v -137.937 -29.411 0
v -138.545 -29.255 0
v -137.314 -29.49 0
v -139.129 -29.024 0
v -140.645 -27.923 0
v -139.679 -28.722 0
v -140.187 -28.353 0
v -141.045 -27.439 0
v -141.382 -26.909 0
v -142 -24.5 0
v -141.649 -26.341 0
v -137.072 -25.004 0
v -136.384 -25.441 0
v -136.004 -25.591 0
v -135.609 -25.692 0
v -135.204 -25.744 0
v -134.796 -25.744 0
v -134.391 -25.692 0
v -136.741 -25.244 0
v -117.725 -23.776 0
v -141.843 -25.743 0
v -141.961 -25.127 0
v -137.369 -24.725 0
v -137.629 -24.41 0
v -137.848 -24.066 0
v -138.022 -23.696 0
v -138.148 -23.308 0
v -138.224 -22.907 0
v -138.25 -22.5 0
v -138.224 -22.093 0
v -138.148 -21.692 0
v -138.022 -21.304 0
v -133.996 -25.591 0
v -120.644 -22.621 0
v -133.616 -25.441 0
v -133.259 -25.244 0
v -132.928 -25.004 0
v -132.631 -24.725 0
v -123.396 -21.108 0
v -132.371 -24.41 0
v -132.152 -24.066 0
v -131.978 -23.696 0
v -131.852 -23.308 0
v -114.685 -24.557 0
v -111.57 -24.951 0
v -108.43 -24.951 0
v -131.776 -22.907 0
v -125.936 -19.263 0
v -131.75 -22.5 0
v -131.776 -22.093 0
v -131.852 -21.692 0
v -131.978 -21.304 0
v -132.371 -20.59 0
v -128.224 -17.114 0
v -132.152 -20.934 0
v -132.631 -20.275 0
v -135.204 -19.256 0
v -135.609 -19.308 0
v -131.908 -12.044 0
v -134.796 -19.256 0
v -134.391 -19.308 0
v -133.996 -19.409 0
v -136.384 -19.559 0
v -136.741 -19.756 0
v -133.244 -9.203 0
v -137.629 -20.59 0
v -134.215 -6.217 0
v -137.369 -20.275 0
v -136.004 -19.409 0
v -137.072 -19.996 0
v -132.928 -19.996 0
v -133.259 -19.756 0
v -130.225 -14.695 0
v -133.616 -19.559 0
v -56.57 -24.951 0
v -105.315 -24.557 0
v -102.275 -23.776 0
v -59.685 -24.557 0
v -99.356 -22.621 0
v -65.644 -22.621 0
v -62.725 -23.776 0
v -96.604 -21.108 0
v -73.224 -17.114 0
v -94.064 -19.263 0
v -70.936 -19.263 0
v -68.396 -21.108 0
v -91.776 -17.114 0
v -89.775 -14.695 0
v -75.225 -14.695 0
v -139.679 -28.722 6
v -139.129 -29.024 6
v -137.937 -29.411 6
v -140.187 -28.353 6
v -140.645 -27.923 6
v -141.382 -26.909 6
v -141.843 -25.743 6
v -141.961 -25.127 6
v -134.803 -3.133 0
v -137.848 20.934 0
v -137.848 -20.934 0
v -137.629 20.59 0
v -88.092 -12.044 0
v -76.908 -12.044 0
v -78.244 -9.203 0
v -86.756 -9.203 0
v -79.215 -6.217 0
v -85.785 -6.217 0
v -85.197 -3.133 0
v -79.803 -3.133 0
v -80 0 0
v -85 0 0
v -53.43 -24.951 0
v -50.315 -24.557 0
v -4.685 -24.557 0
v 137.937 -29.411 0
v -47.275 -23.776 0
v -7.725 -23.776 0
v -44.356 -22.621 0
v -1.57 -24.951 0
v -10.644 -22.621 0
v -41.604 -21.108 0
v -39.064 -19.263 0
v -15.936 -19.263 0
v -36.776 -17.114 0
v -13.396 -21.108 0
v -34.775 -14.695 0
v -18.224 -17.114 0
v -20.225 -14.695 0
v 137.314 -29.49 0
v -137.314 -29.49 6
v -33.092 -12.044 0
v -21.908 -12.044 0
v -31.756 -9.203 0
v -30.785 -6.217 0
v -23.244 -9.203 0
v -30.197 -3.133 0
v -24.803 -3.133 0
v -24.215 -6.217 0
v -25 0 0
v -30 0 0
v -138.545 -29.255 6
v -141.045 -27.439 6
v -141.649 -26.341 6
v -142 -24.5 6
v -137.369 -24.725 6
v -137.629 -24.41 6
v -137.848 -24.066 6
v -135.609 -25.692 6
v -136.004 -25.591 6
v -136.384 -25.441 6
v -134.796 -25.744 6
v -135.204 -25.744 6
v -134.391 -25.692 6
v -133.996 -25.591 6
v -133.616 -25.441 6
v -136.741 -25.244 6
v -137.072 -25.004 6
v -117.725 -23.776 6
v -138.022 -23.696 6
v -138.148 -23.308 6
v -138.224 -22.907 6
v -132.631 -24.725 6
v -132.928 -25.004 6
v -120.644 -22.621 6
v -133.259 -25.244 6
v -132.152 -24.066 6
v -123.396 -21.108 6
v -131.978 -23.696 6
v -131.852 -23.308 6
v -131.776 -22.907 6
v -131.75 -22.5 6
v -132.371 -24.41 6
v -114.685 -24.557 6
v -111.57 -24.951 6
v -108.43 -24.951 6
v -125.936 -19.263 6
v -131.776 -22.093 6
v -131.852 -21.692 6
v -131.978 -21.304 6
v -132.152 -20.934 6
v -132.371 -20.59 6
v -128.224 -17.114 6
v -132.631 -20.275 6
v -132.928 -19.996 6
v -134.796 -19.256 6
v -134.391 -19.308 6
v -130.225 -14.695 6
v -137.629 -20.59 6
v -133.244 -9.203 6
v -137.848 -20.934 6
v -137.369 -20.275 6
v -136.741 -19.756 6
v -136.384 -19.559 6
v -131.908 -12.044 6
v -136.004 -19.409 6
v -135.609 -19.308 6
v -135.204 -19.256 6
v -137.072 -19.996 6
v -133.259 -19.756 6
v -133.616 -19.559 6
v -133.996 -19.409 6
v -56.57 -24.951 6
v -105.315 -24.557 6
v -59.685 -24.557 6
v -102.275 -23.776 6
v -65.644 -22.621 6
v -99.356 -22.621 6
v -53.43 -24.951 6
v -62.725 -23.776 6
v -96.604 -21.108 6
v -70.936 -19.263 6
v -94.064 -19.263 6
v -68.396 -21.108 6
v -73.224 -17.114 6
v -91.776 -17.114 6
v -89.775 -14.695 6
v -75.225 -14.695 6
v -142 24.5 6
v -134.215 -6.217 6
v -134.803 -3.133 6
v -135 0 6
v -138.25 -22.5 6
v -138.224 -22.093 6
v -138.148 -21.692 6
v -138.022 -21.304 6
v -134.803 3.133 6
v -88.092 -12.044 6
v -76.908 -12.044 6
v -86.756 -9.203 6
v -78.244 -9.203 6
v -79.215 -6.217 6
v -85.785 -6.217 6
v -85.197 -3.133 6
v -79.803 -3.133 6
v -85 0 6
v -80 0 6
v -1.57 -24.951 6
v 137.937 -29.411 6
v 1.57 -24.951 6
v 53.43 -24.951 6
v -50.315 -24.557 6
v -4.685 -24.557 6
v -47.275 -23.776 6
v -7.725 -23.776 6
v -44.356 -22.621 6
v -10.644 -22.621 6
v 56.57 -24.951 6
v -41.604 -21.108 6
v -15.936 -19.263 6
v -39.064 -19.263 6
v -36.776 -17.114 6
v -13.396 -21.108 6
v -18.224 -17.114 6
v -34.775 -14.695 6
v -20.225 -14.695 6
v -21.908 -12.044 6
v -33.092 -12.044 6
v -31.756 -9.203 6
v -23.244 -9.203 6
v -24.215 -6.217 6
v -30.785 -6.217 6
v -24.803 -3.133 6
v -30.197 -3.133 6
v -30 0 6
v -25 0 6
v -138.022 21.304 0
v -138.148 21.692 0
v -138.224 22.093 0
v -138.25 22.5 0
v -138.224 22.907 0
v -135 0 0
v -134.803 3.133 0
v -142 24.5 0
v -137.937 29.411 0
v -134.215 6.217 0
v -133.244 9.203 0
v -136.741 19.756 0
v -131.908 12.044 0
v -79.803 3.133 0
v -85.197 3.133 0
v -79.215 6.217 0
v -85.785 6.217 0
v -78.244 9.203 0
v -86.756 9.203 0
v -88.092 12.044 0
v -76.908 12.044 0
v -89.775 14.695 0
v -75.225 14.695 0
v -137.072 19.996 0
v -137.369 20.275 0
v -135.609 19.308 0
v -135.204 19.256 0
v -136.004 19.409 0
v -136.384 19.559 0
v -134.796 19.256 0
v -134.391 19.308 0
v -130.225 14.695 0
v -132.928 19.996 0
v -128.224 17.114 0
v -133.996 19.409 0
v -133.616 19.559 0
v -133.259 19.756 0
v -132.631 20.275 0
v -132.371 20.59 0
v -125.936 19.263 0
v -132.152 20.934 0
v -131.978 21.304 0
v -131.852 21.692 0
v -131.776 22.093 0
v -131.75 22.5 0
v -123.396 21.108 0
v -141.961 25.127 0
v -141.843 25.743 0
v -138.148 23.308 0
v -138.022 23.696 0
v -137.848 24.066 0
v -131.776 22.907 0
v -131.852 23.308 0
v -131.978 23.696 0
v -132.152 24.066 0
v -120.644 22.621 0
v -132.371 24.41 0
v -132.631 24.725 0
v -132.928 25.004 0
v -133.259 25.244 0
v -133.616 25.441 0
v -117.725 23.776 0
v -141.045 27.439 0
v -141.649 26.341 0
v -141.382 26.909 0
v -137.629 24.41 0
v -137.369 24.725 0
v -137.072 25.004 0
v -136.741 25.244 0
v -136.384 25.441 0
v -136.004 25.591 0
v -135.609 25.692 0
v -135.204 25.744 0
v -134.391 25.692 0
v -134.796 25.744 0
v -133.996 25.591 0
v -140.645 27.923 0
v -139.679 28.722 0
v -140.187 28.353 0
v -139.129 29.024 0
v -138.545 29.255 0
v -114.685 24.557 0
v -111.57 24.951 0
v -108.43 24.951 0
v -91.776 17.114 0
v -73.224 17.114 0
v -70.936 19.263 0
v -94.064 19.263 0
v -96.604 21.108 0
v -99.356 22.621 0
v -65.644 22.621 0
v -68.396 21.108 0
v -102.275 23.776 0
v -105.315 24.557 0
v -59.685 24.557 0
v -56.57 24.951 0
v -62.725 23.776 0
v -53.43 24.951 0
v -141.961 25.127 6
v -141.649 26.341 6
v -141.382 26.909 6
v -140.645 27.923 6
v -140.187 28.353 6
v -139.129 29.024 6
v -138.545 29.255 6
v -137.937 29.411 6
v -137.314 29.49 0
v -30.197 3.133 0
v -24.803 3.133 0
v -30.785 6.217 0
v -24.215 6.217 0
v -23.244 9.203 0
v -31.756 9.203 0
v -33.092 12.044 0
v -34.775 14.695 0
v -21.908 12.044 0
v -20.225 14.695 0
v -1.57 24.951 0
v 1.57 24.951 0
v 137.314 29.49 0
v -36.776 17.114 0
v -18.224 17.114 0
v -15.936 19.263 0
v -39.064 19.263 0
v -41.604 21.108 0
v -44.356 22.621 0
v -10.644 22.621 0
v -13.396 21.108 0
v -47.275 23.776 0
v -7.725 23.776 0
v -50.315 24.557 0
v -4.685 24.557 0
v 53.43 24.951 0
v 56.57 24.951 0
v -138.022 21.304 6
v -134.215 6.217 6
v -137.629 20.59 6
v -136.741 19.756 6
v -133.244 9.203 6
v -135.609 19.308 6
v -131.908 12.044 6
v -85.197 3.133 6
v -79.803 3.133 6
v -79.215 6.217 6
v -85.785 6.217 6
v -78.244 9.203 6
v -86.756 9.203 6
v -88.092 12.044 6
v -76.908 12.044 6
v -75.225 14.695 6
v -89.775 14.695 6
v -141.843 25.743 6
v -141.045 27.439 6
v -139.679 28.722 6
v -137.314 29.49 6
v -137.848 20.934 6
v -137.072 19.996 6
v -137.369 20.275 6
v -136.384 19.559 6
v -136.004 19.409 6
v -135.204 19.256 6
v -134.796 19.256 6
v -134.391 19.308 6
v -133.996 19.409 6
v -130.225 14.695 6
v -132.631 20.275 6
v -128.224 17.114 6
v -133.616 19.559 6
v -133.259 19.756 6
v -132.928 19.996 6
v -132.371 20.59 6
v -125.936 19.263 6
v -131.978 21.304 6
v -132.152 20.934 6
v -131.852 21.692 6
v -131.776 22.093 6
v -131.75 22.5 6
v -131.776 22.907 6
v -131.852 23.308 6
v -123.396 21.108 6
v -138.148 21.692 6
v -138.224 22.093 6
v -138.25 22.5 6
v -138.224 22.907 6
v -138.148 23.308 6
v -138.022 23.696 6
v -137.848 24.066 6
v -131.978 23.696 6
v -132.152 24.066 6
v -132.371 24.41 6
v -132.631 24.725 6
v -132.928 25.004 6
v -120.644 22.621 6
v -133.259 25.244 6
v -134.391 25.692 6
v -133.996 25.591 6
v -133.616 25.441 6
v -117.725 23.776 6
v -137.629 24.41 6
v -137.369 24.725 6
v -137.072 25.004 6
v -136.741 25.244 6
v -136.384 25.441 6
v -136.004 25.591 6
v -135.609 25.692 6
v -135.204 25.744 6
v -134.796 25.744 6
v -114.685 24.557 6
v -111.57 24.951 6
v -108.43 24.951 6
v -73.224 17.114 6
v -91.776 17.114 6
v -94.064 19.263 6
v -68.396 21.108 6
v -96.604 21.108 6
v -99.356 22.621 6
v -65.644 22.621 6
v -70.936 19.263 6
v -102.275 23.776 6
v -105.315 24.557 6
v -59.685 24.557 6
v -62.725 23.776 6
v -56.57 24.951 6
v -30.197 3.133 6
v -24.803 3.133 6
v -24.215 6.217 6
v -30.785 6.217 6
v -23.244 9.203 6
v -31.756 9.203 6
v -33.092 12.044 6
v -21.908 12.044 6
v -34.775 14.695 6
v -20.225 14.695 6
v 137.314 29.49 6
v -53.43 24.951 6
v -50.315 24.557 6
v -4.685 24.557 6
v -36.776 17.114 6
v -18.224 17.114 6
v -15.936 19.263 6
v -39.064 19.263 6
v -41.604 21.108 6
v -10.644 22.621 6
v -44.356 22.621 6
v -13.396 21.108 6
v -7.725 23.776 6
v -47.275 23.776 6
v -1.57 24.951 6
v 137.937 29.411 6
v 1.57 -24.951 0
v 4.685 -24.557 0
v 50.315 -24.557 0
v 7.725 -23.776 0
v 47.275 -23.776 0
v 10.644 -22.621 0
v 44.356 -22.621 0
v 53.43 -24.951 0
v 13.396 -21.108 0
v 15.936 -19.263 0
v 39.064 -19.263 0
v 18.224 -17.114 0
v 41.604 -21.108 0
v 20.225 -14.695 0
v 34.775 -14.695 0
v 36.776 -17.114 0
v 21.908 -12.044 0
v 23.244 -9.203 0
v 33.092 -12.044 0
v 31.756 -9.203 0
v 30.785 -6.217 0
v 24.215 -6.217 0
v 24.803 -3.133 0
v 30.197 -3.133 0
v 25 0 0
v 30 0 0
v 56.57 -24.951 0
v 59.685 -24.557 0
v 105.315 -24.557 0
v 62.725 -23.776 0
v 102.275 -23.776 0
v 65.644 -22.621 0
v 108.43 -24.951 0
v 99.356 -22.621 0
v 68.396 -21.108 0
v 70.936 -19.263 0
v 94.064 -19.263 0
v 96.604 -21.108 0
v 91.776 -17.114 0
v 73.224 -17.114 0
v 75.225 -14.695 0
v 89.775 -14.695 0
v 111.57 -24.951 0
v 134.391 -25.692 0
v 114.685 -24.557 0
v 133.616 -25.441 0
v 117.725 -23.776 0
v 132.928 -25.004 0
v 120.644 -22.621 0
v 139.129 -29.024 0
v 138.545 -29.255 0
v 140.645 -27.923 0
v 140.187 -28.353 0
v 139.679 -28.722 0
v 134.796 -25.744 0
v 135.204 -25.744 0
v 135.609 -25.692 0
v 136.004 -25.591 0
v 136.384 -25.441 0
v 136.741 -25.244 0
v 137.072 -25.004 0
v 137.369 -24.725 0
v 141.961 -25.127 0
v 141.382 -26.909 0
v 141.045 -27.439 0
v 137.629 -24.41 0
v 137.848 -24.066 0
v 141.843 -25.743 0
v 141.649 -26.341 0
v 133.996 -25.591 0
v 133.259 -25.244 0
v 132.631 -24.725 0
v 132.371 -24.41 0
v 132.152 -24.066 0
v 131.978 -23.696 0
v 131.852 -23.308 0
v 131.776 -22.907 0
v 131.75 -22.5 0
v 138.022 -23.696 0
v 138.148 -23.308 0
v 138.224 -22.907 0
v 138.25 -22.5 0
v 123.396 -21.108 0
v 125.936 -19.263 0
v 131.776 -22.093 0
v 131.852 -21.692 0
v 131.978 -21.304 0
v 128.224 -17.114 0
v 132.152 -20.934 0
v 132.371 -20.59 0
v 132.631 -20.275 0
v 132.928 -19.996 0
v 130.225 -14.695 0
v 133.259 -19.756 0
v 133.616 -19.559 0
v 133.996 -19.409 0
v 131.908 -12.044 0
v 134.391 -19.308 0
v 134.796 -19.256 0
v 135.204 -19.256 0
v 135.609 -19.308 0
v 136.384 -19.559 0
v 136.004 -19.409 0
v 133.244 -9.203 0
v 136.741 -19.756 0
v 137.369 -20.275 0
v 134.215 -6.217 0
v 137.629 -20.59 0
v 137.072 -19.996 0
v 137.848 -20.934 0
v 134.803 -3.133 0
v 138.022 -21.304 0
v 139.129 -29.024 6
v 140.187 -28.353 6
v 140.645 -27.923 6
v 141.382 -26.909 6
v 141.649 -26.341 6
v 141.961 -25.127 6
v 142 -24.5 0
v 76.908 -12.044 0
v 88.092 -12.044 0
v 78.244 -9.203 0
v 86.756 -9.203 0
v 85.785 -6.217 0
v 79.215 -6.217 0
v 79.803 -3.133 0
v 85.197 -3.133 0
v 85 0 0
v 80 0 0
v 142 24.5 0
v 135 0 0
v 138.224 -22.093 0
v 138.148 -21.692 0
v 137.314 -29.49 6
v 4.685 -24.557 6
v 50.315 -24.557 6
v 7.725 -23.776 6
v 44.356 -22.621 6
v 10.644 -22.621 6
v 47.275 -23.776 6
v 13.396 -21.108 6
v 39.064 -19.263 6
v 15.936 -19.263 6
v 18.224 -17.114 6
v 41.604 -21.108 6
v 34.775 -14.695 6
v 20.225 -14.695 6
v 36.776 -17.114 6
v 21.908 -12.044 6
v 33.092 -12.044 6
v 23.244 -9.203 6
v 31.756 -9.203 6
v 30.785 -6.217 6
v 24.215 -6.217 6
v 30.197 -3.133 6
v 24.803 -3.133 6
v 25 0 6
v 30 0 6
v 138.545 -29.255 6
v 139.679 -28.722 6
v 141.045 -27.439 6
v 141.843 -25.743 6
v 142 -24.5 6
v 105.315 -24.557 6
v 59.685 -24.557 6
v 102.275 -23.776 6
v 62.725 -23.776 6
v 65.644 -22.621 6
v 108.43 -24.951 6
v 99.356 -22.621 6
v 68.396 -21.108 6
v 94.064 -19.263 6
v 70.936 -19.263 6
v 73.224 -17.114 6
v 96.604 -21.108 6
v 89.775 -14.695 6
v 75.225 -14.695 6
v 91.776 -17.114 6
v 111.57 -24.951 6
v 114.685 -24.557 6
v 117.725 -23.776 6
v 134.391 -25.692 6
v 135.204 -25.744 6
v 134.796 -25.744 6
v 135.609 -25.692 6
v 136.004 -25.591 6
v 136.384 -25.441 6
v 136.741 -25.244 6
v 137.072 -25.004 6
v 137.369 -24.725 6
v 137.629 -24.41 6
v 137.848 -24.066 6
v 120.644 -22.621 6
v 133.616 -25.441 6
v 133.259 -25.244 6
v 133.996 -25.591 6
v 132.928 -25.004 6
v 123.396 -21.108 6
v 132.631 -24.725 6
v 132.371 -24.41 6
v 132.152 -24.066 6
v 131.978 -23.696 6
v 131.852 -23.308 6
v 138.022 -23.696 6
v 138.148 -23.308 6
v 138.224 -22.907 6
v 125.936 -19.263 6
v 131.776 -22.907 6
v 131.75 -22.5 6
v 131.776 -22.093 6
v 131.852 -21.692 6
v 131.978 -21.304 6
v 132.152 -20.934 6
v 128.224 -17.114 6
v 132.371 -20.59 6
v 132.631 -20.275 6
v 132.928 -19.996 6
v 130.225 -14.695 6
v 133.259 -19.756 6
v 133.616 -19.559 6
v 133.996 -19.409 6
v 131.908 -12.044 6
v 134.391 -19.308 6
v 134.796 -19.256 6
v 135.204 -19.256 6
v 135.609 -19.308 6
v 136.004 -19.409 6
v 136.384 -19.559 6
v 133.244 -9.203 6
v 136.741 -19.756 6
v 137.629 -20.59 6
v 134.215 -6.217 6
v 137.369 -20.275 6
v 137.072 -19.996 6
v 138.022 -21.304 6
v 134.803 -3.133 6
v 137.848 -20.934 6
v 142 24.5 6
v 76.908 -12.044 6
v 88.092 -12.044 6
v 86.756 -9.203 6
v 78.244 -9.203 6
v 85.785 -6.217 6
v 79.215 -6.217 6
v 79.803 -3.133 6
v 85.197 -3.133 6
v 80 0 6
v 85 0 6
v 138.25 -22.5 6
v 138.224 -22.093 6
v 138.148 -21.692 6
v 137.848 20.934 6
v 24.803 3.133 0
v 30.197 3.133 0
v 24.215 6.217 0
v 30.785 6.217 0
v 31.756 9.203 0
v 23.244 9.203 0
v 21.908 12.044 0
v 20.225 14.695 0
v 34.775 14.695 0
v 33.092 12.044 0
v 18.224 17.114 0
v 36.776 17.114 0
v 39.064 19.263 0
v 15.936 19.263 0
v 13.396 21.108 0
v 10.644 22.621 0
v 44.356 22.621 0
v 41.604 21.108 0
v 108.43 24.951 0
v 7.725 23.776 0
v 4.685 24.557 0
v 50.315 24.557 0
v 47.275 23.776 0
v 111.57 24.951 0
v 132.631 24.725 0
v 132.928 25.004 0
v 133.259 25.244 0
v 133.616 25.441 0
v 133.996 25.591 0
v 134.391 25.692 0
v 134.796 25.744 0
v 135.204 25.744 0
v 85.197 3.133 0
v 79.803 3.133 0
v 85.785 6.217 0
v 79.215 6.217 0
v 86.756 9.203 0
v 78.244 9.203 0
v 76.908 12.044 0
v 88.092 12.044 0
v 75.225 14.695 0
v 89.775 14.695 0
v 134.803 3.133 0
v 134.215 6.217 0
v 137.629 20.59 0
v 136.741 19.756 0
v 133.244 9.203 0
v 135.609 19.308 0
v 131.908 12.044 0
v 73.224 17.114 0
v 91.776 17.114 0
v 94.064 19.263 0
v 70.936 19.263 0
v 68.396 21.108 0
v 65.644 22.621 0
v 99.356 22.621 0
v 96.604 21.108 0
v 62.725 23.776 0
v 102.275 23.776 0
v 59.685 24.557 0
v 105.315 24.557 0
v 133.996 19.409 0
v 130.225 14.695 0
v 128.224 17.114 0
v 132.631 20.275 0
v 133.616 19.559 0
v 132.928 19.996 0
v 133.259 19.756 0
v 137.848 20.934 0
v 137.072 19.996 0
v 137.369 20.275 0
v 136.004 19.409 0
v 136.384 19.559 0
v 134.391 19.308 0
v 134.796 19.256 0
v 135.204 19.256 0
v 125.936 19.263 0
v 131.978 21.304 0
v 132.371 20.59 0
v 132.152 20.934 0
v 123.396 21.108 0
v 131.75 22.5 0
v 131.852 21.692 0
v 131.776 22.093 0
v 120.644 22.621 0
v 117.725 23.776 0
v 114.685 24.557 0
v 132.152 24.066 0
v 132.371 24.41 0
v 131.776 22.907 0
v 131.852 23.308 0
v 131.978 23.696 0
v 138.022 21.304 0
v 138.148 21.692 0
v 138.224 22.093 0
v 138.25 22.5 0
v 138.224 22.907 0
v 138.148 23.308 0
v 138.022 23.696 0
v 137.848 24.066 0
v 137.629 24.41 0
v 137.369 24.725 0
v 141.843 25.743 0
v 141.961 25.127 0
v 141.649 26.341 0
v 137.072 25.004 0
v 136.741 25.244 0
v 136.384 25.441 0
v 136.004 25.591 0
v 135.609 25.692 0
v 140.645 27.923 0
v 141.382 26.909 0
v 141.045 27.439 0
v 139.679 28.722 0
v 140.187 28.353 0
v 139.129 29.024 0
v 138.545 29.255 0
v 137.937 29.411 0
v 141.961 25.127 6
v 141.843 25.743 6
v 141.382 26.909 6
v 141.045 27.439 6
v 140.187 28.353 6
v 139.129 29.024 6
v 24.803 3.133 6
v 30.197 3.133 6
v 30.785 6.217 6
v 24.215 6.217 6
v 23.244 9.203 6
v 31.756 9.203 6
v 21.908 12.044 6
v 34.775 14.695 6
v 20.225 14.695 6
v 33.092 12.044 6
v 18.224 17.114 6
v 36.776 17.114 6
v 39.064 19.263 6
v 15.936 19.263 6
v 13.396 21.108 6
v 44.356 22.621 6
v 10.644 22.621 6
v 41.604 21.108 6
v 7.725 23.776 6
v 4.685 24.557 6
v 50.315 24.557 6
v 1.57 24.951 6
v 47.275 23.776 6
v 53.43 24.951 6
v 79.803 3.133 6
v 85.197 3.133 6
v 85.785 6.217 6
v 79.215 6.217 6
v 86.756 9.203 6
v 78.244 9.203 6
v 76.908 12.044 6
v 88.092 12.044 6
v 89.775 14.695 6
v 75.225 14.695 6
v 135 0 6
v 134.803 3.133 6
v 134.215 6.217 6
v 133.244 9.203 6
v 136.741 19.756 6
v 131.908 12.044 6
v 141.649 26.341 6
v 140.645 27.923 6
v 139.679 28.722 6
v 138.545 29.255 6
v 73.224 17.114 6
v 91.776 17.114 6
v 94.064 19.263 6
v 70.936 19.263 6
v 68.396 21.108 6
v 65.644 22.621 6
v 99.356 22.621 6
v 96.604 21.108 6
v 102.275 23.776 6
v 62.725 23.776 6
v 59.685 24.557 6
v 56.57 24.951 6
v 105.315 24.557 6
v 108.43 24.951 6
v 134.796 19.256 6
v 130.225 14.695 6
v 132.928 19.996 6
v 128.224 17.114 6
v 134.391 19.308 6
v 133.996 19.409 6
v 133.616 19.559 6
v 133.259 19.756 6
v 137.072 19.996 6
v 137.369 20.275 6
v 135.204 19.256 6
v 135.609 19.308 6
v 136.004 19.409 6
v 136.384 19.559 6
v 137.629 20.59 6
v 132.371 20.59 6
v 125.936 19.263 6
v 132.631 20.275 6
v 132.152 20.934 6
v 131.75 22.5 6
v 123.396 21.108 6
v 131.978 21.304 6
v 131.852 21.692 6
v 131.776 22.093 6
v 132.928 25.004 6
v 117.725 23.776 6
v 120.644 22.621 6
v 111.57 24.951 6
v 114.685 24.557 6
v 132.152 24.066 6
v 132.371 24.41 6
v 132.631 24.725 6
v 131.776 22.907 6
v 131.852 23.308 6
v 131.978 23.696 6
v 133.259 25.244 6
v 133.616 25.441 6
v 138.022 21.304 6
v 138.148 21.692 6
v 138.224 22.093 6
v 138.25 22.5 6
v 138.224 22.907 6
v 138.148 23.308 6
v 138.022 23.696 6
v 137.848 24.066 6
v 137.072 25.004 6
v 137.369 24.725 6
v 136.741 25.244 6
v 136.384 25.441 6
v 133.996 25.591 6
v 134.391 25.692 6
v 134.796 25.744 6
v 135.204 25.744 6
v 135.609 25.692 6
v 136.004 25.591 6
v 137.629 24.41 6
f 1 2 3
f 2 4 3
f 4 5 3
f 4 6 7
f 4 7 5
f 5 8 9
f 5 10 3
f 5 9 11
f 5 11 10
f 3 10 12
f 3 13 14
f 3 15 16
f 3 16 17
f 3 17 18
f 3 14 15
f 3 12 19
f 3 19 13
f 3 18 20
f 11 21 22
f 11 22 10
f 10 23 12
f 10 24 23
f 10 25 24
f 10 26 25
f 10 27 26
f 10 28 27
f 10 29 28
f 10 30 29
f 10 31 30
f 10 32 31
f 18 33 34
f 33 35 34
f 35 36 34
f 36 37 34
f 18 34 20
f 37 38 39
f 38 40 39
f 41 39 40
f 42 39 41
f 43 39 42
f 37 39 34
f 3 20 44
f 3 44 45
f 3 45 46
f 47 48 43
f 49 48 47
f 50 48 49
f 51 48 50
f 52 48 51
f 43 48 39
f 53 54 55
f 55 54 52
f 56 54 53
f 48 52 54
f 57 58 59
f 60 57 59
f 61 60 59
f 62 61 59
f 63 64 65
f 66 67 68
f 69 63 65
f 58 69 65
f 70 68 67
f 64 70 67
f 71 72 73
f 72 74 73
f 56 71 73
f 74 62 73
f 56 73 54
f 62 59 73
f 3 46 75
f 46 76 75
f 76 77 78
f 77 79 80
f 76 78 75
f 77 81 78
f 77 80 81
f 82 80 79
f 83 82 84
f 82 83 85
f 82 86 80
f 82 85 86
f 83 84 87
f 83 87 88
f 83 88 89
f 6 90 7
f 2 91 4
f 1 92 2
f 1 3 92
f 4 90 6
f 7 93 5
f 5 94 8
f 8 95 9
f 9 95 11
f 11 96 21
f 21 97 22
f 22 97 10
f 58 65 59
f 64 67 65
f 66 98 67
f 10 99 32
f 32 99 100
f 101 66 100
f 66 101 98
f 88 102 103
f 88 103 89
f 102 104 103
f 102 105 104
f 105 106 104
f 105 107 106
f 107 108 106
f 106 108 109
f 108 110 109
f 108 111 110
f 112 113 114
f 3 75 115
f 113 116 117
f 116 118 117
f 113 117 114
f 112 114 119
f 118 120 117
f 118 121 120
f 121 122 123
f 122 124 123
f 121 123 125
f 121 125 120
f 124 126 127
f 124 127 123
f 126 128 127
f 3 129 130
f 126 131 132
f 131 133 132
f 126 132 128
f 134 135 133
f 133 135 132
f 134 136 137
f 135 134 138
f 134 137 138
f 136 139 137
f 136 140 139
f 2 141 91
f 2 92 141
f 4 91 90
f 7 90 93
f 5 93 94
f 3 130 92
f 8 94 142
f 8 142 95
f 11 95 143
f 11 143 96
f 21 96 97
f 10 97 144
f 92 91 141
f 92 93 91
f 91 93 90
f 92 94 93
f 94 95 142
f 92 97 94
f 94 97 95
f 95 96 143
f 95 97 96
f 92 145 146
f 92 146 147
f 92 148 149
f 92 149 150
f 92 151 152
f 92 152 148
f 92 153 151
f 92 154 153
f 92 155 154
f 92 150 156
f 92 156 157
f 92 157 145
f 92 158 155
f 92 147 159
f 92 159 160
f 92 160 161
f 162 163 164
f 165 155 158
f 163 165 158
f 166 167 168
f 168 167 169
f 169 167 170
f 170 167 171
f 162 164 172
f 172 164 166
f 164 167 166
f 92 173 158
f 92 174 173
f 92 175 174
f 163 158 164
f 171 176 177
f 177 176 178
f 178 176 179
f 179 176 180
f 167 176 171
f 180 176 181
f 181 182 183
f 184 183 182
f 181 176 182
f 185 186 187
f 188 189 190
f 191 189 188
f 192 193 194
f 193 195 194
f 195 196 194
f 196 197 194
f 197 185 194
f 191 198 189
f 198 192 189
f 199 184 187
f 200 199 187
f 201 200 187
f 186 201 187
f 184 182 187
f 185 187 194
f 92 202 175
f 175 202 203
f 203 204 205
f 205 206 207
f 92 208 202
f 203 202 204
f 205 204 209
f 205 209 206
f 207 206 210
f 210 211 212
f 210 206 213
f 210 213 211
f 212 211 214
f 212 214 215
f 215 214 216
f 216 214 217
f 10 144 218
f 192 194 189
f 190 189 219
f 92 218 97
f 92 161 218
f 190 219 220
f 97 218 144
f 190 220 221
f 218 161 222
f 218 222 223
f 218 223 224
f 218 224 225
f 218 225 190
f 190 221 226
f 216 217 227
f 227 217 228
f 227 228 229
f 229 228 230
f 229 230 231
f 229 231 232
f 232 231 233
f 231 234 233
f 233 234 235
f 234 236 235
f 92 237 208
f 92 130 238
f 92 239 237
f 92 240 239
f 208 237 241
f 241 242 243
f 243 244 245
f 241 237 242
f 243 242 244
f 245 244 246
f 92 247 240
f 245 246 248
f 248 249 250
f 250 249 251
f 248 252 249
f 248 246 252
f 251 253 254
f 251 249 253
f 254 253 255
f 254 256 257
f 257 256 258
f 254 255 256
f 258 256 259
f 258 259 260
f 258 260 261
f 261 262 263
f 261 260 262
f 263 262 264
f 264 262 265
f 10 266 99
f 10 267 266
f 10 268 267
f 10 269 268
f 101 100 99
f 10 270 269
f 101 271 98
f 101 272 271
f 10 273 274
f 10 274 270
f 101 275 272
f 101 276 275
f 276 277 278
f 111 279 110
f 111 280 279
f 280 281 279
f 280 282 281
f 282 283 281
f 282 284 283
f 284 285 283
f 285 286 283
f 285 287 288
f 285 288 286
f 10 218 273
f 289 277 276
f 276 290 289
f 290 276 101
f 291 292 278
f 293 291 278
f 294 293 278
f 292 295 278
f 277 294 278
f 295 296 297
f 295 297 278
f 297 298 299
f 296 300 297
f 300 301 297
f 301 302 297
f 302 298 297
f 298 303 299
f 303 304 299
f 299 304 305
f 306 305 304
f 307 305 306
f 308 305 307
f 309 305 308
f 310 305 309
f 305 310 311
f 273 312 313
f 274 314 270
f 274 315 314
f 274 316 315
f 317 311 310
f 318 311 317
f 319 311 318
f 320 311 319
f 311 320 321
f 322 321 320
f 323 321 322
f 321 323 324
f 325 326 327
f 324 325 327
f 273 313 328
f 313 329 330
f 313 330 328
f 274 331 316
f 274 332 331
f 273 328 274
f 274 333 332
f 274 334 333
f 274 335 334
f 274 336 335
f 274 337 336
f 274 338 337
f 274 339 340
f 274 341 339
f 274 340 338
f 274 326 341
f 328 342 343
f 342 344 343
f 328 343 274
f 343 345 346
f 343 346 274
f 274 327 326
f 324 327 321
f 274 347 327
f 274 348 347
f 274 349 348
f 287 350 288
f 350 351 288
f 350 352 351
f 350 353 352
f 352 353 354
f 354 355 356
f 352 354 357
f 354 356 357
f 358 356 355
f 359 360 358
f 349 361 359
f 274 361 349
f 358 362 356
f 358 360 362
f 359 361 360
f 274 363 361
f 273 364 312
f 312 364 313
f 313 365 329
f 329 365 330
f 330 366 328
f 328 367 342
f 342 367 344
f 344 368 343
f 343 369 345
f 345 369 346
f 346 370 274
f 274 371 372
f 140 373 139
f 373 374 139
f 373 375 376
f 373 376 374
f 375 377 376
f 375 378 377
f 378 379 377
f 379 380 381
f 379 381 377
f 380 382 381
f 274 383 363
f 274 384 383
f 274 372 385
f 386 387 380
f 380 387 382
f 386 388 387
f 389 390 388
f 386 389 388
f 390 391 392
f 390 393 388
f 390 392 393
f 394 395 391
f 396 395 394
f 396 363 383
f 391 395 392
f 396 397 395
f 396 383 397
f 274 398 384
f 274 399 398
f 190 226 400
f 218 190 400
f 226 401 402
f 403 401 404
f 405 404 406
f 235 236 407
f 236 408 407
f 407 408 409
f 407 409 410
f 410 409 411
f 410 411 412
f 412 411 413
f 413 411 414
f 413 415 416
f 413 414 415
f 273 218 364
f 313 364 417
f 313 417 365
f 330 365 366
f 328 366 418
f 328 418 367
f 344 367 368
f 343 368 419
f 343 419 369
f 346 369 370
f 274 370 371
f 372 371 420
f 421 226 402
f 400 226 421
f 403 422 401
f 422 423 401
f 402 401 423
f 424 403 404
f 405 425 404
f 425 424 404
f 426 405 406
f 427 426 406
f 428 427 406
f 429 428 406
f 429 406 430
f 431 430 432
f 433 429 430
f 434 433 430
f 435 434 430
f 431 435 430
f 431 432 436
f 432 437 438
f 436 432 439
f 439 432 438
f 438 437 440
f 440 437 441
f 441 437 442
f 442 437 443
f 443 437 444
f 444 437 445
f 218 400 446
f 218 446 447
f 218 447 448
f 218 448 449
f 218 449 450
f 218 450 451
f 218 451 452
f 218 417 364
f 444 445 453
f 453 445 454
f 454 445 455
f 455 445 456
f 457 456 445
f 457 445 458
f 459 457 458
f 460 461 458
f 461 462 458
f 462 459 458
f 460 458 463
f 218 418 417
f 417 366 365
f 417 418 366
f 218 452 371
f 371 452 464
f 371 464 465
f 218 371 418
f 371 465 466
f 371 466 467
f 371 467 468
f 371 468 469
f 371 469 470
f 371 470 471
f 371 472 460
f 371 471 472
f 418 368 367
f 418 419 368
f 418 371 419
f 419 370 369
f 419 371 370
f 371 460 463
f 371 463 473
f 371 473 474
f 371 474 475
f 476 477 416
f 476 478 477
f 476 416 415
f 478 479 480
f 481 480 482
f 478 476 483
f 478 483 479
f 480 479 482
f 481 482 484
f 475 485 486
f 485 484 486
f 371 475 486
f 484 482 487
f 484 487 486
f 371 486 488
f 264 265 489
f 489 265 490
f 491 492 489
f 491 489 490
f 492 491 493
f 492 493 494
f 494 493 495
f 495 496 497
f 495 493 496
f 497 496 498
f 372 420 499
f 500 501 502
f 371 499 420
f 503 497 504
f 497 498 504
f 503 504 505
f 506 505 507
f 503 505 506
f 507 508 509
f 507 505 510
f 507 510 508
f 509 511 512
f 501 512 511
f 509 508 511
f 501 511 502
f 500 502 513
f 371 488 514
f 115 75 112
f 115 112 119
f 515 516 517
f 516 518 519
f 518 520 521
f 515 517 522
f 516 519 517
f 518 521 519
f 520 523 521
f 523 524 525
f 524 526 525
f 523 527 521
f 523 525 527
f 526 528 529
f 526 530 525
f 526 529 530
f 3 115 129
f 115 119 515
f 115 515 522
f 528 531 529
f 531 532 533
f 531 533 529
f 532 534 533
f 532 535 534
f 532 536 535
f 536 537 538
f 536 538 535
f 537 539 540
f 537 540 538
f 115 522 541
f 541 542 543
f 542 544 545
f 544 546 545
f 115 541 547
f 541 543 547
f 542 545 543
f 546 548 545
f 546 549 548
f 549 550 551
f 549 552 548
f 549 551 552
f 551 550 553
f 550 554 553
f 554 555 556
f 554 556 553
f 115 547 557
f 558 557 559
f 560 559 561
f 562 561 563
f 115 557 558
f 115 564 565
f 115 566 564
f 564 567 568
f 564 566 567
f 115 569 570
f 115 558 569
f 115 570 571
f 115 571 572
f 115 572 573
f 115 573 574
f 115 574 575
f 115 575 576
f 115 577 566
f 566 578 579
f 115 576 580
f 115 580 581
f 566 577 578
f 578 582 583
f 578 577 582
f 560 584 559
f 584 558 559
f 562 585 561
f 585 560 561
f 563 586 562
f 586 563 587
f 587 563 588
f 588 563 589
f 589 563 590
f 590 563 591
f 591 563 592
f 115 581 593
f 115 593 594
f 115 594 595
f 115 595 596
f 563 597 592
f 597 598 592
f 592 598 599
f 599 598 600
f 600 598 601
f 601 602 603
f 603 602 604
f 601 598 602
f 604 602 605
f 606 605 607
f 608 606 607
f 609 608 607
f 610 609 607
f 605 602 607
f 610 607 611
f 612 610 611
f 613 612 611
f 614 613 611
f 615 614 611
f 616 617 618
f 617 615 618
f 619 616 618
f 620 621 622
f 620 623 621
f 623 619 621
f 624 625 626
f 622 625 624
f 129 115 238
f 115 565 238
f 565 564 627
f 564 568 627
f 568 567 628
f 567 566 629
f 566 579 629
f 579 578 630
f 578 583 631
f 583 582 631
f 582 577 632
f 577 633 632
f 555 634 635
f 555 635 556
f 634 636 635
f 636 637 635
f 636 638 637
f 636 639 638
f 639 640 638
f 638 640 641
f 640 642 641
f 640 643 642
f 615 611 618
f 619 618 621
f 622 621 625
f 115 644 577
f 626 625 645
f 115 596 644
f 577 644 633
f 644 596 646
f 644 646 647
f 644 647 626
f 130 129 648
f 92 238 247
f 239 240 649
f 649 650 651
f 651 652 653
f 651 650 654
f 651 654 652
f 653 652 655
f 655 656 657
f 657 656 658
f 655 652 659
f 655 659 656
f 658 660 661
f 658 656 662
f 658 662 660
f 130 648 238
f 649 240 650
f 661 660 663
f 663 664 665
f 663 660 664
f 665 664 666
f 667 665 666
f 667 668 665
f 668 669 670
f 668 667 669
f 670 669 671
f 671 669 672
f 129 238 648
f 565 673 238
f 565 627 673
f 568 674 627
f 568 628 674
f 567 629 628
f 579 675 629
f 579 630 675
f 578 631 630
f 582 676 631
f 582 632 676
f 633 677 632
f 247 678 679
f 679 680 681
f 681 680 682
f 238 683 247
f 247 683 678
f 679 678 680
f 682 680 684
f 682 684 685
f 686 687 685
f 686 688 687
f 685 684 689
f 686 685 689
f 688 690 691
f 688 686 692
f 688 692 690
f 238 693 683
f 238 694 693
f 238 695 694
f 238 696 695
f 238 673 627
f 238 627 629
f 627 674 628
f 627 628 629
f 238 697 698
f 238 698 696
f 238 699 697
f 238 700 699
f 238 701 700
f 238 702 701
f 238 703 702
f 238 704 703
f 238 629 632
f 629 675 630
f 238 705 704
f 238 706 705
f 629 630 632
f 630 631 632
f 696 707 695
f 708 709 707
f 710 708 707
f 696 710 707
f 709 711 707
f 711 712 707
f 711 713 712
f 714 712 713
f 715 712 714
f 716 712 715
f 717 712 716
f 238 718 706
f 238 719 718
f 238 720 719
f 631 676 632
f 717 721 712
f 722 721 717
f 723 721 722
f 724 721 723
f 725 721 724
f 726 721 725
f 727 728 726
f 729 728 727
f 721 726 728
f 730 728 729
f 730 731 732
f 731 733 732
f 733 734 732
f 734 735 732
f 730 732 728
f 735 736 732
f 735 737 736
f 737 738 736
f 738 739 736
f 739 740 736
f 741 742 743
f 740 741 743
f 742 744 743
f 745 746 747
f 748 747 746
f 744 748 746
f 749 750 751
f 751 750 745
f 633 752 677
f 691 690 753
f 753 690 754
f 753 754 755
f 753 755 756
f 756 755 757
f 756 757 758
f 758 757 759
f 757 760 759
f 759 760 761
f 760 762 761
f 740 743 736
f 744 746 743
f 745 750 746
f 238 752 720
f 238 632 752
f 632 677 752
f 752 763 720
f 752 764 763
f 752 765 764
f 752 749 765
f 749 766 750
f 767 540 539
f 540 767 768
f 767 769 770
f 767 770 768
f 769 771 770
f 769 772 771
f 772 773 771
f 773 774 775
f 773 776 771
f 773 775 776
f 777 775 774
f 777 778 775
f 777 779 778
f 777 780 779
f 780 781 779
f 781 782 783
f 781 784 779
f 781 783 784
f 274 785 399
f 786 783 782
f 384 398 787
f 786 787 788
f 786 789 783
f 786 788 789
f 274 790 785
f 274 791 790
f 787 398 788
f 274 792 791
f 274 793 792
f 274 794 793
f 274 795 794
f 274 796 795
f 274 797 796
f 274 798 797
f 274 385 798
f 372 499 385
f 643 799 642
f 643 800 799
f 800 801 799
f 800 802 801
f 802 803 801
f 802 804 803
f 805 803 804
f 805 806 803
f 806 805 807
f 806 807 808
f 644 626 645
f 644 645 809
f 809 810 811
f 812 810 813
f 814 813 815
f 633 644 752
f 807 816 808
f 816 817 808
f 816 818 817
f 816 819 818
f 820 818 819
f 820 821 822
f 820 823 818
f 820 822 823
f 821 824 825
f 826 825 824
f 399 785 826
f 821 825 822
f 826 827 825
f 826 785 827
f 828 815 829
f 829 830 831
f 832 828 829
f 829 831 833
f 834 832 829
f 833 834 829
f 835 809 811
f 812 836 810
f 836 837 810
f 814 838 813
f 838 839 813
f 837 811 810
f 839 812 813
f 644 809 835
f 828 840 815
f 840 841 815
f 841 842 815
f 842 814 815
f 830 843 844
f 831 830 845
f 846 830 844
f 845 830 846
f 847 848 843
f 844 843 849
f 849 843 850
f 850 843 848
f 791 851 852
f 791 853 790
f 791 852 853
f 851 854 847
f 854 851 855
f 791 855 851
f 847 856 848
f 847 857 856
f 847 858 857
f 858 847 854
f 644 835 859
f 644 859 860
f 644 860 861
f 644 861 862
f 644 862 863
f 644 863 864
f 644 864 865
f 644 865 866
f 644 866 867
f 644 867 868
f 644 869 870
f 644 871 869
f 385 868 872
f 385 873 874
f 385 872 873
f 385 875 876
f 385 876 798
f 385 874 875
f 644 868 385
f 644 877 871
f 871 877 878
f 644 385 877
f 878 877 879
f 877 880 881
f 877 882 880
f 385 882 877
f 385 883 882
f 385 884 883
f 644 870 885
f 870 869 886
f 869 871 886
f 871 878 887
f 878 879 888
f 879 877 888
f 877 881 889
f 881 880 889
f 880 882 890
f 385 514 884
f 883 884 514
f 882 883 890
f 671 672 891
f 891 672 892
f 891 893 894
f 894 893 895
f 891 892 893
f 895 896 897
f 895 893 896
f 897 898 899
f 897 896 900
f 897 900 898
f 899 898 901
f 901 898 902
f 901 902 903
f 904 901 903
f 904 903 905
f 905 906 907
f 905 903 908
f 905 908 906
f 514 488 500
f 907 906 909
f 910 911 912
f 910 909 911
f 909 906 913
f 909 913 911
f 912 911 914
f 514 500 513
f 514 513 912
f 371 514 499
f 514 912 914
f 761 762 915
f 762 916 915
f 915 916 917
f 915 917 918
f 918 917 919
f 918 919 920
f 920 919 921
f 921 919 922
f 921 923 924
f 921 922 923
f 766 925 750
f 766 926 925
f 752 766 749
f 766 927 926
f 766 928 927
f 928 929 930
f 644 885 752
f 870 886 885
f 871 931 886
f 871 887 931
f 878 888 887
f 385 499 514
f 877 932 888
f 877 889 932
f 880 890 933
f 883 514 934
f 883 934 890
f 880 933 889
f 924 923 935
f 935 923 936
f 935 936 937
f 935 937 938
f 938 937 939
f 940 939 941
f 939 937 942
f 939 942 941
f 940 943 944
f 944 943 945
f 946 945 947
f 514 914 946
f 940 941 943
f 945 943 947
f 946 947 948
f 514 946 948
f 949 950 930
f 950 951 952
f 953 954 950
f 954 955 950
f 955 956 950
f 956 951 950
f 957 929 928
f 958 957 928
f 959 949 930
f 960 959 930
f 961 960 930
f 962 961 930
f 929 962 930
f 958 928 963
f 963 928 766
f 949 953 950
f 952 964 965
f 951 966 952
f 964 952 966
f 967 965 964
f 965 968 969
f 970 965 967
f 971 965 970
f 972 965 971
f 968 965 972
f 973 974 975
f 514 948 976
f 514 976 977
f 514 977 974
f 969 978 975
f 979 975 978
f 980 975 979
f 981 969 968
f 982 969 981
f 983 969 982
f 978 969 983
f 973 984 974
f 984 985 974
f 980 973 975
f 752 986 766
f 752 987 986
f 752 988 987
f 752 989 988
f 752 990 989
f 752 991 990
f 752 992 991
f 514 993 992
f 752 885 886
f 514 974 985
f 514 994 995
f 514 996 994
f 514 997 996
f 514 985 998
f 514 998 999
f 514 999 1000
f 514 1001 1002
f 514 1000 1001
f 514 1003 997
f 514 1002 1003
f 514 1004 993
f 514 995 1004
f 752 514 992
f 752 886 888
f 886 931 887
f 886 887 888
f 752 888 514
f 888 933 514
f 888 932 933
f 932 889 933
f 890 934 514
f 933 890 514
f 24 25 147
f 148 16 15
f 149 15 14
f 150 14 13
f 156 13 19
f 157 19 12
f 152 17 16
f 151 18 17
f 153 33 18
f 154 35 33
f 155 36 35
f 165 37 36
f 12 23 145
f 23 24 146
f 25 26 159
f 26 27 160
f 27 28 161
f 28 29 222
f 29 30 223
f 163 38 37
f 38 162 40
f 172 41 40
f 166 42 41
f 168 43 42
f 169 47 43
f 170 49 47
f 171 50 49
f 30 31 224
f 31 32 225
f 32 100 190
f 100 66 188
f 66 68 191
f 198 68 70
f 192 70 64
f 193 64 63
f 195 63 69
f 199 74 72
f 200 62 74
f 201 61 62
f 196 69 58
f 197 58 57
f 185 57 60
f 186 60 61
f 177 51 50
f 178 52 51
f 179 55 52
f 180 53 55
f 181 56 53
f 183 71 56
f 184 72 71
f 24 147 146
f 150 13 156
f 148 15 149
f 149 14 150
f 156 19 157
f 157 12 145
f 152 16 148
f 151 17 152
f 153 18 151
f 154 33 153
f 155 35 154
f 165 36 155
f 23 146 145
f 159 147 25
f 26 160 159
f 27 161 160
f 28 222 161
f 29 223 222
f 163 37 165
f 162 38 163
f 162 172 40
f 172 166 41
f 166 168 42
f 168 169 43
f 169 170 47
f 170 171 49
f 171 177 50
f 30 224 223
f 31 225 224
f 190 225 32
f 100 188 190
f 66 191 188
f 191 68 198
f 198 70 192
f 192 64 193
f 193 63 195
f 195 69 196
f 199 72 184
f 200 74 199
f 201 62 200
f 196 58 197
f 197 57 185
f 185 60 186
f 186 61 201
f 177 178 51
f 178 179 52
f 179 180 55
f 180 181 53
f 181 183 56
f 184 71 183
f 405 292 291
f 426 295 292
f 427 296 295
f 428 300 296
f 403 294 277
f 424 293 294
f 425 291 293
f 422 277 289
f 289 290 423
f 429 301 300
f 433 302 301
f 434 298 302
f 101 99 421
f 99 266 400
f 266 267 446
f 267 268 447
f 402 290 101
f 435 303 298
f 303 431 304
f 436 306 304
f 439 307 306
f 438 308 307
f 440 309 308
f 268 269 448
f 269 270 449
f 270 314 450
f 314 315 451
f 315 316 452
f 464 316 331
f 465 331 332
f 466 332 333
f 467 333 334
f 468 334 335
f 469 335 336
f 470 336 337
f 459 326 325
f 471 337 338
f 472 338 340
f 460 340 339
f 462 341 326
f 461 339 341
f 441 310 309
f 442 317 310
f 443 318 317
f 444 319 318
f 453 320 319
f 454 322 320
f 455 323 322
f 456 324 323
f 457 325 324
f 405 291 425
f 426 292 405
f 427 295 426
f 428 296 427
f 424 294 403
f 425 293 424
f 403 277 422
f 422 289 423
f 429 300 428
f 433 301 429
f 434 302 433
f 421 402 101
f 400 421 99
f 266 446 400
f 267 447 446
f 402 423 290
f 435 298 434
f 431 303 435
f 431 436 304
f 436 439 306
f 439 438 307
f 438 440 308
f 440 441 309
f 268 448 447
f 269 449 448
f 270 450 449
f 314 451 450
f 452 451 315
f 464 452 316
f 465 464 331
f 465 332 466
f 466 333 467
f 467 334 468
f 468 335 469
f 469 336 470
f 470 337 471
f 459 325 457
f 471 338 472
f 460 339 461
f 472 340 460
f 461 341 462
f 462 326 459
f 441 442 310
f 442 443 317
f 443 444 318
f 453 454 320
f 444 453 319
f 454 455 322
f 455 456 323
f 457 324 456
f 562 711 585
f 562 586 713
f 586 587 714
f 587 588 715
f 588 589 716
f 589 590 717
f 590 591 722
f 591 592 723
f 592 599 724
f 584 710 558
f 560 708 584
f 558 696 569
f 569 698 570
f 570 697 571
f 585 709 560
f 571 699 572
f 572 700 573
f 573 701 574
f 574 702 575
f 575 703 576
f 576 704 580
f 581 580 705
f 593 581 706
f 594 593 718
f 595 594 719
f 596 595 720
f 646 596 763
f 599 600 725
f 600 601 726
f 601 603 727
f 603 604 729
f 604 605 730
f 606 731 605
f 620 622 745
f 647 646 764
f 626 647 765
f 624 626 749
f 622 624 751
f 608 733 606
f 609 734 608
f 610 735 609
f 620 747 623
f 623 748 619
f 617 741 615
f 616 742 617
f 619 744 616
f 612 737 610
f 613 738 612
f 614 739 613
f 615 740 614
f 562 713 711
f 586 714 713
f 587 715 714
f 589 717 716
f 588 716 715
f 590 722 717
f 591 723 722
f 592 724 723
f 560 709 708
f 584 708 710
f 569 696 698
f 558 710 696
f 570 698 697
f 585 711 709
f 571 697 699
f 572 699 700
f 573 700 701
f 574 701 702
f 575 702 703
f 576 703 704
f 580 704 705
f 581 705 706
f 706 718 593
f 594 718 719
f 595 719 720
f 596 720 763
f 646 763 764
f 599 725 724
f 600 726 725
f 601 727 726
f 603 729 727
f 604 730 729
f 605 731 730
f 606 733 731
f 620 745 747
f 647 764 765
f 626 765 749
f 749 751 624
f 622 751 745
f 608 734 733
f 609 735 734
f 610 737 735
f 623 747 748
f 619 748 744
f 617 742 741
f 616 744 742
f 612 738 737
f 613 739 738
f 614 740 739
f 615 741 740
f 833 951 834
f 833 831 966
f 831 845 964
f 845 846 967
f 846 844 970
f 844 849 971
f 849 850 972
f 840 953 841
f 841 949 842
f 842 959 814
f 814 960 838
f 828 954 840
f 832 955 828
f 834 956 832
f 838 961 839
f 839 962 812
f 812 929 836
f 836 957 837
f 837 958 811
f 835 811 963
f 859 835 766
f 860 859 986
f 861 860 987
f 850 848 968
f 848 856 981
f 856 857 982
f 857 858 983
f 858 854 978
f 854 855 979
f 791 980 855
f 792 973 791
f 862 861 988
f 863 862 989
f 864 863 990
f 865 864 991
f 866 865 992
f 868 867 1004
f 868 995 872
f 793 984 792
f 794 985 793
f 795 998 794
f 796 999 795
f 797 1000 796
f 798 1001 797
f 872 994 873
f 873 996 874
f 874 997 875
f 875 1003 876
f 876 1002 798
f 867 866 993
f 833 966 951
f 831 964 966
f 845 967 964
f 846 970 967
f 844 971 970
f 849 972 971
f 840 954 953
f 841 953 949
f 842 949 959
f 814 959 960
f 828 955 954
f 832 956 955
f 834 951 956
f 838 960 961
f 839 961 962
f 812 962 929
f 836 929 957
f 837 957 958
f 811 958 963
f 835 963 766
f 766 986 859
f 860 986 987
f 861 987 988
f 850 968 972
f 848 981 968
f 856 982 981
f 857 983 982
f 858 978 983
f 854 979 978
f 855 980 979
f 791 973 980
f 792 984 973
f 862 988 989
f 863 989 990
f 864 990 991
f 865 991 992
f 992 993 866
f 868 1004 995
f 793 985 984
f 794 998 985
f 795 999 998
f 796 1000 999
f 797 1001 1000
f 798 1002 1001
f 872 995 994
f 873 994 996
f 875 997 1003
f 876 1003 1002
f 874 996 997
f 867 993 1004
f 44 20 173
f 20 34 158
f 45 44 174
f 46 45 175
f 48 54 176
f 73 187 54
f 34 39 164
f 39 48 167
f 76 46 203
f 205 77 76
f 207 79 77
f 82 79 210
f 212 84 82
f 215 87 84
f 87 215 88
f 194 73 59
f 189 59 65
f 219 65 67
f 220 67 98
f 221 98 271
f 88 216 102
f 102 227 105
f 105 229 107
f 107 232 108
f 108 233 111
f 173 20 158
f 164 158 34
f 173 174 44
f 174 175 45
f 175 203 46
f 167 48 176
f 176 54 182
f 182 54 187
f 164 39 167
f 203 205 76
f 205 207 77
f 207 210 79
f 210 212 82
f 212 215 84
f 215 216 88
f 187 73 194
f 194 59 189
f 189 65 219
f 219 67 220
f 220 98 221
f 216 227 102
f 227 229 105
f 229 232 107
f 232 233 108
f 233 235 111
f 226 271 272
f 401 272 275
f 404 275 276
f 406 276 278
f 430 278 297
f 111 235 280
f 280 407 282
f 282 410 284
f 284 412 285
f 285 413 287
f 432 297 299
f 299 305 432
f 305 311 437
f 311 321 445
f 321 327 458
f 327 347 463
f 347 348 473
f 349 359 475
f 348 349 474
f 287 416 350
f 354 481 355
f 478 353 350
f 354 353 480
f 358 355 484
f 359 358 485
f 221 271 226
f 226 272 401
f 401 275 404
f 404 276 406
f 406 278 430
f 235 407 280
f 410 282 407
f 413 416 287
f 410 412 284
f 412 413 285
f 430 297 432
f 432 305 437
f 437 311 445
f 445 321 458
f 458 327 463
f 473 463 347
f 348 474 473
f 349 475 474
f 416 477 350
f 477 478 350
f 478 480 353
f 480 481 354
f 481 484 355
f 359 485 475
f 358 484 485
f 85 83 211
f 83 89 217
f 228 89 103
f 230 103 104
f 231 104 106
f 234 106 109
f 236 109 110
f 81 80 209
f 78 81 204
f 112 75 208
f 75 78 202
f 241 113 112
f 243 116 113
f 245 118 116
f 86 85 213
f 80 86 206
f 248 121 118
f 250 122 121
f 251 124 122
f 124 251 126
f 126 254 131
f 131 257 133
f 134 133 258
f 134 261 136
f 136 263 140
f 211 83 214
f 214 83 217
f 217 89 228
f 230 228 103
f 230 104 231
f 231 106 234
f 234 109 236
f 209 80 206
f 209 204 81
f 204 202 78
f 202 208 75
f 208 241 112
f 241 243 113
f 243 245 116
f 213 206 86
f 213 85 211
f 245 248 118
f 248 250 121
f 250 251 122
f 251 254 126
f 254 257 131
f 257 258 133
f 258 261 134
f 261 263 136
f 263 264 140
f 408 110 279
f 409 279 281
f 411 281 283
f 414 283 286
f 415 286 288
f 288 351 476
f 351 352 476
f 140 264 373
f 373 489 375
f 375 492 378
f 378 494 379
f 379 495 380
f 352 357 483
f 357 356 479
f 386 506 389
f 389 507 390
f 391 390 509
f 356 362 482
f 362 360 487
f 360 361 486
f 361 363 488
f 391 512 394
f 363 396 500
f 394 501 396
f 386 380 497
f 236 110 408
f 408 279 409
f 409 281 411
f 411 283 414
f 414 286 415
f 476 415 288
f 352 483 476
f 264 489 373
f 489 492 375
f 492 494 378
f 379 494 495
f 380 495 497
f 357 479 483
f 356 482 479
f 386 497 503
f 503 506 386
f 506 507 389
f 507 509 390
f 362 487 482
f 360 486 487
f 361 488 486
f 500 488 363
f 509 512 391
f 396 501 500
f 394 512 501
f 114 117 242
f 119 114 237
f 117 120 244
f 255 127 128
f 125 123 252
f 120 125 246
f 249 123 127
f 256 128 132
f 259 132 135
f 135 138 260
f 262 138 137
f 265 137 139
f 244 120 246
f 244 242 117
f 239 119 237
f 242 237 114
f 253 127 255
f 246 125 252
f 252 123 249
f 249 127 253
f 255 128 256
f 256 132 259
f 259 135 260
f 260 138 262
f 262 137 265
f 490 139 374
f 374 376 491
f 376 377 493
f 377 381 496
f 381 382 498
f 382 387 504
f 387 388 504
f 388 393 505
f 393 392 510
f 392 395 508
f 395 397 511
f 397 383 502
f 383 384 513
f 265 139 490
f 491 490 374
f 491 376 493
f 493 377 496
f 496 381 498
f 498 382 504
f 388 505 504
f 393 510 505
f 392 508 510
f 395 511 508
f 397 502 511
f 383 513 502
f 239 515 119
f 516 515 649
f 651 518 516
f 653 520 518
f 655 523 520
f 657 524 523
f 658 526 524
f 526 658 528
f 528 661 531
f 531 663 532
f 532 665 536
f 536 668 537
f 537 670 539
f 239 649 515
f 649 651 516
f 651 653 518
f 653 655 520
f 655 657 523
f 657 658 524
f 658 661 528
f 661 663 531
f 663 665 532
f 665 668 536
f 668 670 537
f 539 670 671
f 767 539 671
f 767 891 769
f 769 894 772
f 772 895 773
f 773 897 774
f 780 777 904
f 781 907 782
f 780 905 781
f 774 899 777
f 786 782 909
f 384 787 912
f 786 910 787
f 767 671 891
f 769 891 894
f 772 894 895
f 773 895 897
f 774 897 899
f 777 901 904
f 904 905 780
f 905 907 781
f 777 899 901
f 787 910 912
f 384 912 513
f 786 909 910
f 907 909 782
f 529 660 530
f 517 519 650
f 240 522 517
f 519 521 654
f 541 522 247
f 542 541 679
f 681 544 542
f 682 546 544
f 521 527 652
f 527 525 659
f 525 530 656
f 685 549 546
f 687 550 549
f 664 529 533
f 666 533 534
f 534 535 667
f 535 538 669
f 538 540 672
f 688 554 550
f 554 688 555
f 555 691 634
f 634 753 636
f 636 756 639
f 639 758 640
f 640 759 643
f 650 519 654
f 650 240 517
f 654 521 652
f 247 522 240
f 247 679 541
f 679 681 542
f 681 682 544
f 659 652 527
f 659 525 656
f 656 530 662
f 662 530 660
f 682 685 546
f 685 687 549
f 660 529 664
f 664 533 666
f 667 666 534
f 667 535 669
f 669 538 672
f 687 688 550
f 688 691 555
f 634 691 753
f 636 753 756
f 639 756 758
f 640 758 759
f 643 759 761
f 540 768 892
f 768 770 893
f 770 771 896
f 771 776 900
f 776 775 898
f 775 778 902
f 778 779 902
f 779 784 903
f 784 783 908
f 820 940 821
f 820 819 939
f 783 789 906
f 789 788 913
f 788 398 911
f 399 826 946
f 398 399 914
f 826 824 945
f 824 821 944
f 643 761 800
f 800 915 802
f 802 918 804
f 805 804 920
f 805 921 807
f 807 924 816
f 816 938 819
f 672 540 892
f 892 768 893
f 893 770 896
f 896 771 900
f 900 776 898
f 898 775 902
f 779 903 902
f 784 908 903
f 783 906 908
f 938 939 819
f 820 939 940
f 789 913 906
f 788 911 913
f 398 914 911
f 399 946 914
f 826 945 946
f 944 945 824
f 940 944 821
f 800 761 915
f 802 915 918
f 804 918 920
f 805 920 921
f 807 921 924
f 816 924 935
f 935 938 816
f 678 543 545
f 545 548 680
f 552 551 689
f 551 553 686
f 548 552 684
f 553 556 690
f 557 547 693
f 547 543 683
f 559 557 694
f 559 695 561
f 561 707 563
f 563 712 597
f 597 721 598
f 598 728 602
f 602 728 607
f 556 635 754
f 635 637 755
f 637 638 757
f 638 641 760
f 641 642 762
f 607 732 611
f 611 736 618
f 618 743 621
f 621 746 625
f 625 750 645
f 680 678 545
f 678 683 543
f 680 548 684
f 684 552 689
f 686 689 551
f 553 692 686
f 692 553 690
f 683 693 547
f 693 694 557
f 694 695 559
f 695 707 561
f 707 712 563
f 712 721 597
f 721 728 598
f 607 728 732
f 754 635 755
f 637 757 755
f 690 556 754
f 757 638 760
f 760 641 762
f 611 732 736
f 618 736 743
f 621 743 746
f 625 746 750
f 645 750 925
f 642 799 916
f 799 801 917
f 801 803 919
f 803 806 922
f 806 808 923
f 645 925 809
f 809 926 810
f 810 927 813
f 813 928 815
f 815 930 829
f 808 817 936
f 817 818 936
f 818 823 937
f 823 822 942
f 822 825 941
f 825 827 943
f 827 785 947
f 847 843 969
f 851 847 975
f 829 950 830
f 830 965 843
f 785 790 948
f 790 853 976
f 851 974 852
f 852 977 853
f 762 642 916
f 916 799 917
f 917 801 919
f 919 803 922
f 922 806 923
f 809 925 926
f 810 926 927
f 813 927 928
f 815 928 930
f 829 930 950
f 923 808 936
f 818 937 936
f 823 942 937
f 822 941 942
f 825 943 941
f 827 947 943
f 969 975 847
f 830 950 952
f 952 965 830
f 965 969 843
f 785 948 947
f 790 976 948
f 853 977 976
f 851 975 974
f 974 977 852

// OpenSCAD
$fn = 50;

difference() {
	union() {
		hull() {
			translate(v = [-137.0, 24.5, 0]) {
				cylinder(h = 6, r = 5);
			}
			translate(v = [137.0, 24.5, 0]) {
				cylinder(h = 6, r = 5);
			}
			translate(v = [-137.0, -24.5, 0]) {
				cylinder(h = 6, r = 5);
			}
			translate(v = [137.0, -24.5, 0]) {
				cylinder(h = 6, r = 5);
			}
		}
	}
	union() {
		translate(v = [-135.0, -22.5, -100.0]) {
			cylinder(h = 200, r = 3.25);
		}
		translate(v = [-135.0, 22.5, -100.0]) {
			cylinder(h = 200, r = 3.25);
		}
		translate(v = [135.0, -22.5, -100.0]) {
			cylinder(h = 200, r = 3.25);
		}
		translate(v = [135.0, 22.5, -100.0]) {
			cylinder(h = 200, r = 3.25);
		}
		translate(v = [-135.0, -22.5, -100.0]) {
			cylinder(h = 200, r = 1.8);
		}
		translate(v = [-135.0, 22.5, -100.0]) {
			cylinder(h = 200, r = 1.8);
		}
		translate(v = [135.0, -22.5, -100.0]) {
			cylinder(h = 200, r = 1.8);
		}
		translate(v = [135.0, 22.5, -100.0]) {
			cylinder(h = 200, r = 1.8);
		}
		translate(v = [-110.0, 0, 0.0]) {
			cylinder(h = 6, r = 25.0);
		}
		translate(v = [-55.0, 0, 0.0]) {
			cylinder(h = 6, r = 25.0);
		}
		cylinder(h = 6, r = 25.0);
		translate(v = [55.0, 0, 0.0]) {
			cylinder(h = 6, r = 25.0);
		}
		translate(v = [110.0, 0, 0.0]) {
			cylinder(h = 6, r = 25.0);
		}
	}
}
